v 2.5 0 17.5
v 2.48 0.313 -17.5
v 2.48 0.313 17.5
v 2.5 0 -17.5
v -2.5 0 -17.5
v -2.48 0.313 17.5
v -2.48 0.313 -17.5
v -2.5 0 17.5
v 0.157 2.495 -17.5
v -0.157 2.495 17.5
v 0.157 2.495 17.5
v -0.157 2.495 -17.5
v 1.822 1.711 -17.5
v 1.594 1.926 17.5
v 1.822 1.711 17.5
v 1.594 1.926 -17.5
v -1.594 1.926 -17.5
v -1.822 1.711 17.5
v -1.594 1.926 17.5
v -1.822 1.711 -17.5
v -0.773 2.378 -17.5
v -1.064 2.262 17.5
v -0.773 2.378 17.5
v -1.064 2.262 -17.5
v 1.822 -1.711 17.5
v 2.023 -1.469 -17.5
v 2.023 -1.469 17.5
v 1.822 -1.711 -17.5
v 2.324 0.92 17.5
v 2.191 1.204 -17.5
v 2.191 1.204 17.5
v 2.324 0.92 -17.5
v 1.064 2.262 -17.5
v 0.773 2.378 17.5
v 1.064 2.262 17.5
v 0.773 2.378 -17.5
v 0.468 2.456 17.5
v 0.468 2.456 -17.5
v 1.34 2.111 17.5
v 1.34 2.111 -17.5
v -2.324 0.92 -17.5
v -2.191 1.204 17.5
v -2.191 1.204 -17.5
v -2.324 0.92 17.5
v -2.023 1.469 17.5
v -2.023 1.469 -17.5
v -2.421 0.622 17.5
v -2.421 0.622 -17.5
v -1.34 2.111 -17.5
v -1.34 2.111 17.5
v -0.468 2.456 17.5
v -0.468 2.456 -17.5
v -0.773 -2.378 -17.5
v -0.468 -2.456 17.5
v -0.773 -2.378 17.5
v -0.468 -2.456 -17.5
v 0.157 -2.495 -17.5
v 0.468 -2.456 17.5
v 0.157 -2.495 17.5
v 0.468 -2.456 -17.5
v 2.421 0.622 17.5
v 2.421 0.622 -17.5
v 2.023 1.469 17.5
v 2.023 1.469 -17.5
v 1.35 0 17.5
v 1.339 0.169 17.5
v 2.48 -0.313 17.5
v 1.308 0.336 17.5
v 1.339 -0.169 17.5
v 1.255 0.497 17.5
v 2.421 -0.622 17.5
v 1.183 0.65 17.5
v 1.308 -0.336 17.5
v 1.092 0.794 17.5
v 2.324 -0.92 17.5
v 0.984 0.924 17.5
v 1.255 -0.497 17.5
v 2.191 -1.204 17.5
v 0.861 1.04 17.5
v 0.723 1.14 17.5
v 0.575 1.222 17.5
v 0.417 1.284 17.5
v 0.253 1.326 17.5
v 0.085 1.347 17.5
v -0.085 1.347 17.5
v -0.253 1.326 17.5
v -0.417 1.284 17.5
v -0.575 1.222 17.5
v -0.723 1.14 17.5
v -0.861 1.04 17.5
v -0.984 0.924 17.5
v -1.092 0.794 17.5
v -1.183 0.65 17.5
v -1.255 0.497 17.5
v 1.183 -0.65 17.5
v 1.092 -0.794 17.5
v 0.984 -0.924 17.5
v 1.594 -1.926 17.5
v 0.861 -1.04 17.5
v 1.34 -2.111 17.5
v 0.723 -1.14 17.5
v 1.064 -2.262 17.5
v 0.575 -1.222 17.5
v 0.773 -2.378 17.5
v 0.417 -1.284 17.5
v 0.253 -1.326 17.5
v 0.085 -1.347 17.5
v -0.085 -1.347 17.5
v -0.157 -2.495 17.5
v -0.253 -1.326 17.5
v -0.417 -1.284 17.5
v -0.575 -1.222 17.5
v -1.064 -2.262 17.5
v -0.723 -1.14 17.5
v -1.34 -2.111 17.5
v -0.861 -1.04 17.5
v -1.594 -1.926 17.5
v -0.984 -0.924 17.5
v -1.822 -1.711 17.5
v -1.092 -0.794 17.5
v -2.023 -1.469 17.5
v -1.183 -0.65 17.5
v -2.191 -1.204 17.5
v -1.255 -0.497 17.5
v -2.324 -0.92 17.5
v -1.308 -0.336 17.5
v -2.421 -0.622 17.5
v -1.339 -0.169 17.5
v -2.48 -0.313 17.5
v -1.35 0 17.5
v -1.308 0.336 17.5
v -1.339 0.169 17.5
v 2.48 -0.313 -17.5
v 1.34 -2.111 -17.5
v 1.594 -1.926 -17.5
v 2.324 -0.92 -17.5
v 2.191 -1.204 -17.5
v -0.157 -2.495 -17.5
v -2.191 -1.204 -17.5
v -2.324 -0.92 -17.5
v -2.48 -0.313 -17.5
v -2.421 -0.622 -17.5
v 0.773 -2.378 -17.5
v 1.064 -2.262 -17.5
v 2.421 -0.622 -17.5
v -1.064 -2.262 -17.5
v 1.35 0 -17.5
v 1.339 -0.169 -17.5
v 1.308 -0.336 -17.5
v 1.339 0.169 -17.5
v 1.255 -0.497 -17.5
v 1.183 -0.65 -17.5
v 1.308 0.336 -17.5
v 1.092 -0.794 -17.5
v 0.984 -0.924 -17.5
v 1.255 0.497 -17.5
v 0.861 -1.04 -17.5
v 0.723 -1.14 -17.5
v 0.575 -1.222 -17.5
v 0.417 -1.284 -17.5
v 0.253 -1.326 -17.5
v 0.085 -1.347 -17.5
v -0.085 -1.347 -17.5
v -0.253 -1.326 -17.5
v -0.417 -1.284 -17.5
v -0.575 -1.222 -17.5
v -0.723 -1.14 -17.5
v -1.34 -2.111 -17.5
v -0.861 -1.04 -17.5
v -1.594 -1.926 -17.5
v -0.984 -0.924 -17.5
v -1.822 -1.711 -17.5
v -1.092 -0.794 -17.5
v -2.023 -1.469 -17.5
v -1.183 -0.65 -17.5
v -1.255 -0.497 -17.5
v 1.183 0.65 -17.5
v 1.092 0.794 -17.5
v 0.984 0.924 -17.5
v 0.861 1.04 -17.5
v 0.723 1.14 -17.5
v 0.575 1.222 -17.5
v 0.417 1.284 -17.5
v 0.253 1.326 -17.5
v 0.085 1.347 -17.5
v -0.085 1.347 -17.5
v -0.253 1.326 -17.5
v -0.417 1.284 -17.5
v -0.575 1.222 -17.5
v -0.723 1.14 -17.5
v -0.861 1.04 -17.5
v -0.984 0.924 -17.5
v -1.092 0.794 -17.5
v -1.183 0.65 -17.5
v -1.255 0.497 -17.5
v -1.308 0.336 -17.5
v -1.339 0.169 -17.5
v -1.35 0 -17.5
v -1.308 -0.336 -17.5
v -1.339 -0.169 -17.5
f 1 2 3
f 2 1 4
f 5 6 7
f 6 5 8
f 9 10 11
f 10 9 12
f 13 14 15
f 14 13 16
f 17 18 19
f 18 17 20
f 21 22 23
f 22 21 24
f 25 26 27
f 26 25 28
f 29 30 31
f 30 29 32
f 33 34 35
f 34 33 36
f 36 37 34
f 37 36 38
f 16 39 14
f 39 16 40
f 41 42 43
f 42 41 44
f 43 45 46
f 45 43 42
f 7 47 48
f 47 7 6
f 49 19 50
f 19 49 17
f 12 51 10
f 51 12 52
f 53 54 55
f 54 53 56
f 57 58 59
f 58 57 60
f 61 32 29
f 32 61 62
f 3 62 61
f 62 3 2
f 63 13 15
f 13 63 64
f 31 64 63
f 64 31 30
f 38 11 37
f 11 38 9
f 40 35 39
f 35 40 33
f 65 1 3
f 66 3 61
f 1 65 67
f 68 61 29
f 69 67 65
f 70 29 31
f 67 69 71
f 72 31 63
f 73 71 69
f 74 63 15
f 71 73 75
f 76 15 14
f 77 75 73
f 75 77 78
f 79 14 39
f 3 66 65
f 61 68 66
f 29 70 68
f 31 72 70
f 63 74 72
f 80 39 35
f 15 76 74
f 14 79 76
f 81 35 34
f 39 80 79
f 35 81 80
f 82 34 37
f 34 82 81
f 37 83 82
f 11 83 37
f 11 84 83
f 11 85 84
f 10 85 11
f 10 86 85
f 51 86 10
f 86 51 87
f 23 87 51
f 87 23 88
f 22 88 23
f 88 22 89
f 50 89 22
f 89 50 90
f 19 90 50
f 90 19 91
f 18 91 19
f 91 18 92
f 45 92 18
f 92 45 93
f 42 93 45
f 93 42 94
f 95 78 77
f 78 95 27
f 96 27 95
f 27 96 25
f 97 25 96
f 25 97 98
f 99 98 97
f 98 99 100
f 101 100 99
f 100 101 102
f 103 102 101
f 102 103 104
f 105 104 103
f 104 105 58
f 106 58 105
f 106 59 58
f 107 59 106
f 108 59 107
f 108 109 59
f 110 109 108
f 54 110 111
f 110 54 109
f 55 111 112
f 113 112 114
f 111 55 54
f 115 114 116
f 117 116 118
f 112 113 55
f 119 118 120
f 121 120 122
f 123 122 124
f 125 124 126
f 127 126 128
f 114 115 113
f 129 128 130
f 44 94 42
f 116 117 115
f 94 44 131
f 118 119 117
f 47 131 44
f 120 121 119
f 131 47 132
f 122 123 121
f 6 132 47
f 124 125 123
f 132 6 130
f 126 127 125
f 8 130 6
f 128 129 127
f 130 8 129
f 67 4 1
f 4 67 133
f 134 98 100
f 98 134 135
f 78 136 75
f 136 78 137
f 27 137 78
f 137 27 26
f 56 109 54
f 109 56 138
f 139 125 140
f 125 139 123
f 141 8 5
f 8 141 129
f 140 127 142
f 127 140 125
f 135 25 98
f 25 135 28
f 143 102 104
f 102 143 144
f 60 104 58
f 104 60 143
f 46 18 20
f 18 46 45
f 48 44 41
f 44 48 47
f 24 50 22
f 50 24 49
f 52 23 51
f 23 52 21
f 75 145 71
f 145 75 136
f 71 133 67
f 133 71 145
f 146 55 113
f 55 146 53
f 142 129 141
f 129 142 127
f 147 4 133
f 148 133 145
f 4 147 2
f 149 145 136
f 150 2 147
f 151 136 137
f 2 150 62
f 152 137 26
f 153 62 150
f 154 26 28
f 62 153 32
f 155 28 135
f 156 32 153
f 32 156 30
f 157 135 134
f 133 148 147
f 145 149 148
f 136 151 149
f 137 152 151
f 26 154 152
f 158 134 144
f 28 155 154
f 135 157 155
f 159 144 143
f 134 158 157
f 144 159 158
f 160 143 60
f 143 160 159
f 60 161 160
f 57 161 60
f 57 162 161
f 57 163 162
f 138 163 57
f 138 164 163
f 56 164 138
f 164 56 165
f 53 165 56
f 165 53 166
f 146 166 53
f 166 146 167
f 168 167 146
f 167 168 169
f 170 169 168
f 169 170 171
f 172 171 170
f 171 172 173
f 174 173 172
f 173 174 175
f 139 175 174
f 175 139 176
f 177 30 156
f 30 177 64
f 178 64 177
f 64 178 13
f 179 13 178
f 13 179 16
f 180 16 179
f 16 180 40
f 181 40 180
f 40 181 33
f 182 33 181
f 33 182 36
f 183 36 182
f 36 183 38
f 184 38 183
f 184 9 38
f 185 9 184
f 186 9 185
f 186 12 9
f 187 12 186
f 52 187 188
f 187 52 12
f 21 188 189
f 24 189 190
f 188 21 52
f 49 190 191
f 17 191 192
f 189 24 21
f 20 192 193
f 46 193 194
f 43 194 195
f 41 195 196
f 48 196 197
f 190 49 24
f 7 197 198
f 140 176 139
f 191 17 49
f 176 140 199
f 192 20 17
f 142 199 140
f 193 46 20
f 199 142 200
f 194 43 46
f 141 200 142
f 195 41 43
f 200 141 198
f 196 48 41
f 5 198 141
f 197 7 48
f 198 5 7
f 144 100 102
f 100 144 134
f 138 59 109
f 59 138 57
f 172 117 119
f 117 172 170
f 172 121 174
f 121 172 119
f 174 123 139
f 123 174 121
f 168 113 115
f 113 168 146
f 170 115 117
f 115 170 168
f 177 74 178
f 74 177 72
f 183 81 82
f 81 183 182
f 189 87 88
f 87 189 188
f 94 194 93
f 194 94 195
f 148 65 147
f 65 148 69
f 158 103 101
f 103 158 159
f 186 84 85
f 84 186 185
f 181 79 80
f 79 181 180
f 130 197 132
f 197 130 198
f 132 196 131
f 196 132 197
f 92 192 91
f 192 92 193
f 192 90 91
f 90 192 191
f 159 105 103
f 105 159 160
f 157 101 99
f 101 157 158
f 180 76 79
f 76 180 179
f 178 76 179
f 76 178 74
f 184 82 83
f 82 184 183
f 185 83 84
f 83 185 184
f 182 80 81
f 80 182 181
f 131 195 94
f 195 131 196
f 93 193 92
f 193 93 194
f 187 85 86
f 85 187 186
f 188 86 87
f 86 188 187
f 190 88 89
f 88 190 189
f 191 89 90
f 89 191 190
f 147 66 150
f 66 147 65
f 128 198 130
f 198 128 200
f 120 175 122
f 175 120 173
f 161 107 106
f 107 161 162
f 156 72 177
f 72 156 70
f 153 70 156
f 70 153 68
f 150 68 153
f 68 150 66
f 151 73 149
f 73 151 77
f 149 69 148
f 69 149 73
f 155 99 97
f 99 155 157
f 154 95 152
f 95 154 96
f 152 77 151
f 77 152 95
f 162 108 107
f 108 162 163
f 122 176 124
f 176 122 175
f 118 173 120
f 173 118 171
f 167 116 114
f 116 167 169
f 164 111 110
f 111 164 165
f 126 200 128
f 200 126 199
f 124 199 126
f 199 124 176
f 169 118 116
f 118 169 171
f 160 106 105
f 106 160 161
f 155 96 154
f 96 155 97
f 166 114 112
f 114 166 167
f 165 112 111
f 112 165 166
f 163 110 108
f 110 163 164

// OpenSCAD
$fn = 50;


difference() {
	union() {
		translate(v = [0, 0, -17.5000000000]) {
			cylinder(h = 35, r = 2.5000000000);
		}
	}
	union() {
		translate(v = [0, 0, -100.0000000000]) {
			cylinder(h = 200, r = 1.3500000000);
		}
	}
}
